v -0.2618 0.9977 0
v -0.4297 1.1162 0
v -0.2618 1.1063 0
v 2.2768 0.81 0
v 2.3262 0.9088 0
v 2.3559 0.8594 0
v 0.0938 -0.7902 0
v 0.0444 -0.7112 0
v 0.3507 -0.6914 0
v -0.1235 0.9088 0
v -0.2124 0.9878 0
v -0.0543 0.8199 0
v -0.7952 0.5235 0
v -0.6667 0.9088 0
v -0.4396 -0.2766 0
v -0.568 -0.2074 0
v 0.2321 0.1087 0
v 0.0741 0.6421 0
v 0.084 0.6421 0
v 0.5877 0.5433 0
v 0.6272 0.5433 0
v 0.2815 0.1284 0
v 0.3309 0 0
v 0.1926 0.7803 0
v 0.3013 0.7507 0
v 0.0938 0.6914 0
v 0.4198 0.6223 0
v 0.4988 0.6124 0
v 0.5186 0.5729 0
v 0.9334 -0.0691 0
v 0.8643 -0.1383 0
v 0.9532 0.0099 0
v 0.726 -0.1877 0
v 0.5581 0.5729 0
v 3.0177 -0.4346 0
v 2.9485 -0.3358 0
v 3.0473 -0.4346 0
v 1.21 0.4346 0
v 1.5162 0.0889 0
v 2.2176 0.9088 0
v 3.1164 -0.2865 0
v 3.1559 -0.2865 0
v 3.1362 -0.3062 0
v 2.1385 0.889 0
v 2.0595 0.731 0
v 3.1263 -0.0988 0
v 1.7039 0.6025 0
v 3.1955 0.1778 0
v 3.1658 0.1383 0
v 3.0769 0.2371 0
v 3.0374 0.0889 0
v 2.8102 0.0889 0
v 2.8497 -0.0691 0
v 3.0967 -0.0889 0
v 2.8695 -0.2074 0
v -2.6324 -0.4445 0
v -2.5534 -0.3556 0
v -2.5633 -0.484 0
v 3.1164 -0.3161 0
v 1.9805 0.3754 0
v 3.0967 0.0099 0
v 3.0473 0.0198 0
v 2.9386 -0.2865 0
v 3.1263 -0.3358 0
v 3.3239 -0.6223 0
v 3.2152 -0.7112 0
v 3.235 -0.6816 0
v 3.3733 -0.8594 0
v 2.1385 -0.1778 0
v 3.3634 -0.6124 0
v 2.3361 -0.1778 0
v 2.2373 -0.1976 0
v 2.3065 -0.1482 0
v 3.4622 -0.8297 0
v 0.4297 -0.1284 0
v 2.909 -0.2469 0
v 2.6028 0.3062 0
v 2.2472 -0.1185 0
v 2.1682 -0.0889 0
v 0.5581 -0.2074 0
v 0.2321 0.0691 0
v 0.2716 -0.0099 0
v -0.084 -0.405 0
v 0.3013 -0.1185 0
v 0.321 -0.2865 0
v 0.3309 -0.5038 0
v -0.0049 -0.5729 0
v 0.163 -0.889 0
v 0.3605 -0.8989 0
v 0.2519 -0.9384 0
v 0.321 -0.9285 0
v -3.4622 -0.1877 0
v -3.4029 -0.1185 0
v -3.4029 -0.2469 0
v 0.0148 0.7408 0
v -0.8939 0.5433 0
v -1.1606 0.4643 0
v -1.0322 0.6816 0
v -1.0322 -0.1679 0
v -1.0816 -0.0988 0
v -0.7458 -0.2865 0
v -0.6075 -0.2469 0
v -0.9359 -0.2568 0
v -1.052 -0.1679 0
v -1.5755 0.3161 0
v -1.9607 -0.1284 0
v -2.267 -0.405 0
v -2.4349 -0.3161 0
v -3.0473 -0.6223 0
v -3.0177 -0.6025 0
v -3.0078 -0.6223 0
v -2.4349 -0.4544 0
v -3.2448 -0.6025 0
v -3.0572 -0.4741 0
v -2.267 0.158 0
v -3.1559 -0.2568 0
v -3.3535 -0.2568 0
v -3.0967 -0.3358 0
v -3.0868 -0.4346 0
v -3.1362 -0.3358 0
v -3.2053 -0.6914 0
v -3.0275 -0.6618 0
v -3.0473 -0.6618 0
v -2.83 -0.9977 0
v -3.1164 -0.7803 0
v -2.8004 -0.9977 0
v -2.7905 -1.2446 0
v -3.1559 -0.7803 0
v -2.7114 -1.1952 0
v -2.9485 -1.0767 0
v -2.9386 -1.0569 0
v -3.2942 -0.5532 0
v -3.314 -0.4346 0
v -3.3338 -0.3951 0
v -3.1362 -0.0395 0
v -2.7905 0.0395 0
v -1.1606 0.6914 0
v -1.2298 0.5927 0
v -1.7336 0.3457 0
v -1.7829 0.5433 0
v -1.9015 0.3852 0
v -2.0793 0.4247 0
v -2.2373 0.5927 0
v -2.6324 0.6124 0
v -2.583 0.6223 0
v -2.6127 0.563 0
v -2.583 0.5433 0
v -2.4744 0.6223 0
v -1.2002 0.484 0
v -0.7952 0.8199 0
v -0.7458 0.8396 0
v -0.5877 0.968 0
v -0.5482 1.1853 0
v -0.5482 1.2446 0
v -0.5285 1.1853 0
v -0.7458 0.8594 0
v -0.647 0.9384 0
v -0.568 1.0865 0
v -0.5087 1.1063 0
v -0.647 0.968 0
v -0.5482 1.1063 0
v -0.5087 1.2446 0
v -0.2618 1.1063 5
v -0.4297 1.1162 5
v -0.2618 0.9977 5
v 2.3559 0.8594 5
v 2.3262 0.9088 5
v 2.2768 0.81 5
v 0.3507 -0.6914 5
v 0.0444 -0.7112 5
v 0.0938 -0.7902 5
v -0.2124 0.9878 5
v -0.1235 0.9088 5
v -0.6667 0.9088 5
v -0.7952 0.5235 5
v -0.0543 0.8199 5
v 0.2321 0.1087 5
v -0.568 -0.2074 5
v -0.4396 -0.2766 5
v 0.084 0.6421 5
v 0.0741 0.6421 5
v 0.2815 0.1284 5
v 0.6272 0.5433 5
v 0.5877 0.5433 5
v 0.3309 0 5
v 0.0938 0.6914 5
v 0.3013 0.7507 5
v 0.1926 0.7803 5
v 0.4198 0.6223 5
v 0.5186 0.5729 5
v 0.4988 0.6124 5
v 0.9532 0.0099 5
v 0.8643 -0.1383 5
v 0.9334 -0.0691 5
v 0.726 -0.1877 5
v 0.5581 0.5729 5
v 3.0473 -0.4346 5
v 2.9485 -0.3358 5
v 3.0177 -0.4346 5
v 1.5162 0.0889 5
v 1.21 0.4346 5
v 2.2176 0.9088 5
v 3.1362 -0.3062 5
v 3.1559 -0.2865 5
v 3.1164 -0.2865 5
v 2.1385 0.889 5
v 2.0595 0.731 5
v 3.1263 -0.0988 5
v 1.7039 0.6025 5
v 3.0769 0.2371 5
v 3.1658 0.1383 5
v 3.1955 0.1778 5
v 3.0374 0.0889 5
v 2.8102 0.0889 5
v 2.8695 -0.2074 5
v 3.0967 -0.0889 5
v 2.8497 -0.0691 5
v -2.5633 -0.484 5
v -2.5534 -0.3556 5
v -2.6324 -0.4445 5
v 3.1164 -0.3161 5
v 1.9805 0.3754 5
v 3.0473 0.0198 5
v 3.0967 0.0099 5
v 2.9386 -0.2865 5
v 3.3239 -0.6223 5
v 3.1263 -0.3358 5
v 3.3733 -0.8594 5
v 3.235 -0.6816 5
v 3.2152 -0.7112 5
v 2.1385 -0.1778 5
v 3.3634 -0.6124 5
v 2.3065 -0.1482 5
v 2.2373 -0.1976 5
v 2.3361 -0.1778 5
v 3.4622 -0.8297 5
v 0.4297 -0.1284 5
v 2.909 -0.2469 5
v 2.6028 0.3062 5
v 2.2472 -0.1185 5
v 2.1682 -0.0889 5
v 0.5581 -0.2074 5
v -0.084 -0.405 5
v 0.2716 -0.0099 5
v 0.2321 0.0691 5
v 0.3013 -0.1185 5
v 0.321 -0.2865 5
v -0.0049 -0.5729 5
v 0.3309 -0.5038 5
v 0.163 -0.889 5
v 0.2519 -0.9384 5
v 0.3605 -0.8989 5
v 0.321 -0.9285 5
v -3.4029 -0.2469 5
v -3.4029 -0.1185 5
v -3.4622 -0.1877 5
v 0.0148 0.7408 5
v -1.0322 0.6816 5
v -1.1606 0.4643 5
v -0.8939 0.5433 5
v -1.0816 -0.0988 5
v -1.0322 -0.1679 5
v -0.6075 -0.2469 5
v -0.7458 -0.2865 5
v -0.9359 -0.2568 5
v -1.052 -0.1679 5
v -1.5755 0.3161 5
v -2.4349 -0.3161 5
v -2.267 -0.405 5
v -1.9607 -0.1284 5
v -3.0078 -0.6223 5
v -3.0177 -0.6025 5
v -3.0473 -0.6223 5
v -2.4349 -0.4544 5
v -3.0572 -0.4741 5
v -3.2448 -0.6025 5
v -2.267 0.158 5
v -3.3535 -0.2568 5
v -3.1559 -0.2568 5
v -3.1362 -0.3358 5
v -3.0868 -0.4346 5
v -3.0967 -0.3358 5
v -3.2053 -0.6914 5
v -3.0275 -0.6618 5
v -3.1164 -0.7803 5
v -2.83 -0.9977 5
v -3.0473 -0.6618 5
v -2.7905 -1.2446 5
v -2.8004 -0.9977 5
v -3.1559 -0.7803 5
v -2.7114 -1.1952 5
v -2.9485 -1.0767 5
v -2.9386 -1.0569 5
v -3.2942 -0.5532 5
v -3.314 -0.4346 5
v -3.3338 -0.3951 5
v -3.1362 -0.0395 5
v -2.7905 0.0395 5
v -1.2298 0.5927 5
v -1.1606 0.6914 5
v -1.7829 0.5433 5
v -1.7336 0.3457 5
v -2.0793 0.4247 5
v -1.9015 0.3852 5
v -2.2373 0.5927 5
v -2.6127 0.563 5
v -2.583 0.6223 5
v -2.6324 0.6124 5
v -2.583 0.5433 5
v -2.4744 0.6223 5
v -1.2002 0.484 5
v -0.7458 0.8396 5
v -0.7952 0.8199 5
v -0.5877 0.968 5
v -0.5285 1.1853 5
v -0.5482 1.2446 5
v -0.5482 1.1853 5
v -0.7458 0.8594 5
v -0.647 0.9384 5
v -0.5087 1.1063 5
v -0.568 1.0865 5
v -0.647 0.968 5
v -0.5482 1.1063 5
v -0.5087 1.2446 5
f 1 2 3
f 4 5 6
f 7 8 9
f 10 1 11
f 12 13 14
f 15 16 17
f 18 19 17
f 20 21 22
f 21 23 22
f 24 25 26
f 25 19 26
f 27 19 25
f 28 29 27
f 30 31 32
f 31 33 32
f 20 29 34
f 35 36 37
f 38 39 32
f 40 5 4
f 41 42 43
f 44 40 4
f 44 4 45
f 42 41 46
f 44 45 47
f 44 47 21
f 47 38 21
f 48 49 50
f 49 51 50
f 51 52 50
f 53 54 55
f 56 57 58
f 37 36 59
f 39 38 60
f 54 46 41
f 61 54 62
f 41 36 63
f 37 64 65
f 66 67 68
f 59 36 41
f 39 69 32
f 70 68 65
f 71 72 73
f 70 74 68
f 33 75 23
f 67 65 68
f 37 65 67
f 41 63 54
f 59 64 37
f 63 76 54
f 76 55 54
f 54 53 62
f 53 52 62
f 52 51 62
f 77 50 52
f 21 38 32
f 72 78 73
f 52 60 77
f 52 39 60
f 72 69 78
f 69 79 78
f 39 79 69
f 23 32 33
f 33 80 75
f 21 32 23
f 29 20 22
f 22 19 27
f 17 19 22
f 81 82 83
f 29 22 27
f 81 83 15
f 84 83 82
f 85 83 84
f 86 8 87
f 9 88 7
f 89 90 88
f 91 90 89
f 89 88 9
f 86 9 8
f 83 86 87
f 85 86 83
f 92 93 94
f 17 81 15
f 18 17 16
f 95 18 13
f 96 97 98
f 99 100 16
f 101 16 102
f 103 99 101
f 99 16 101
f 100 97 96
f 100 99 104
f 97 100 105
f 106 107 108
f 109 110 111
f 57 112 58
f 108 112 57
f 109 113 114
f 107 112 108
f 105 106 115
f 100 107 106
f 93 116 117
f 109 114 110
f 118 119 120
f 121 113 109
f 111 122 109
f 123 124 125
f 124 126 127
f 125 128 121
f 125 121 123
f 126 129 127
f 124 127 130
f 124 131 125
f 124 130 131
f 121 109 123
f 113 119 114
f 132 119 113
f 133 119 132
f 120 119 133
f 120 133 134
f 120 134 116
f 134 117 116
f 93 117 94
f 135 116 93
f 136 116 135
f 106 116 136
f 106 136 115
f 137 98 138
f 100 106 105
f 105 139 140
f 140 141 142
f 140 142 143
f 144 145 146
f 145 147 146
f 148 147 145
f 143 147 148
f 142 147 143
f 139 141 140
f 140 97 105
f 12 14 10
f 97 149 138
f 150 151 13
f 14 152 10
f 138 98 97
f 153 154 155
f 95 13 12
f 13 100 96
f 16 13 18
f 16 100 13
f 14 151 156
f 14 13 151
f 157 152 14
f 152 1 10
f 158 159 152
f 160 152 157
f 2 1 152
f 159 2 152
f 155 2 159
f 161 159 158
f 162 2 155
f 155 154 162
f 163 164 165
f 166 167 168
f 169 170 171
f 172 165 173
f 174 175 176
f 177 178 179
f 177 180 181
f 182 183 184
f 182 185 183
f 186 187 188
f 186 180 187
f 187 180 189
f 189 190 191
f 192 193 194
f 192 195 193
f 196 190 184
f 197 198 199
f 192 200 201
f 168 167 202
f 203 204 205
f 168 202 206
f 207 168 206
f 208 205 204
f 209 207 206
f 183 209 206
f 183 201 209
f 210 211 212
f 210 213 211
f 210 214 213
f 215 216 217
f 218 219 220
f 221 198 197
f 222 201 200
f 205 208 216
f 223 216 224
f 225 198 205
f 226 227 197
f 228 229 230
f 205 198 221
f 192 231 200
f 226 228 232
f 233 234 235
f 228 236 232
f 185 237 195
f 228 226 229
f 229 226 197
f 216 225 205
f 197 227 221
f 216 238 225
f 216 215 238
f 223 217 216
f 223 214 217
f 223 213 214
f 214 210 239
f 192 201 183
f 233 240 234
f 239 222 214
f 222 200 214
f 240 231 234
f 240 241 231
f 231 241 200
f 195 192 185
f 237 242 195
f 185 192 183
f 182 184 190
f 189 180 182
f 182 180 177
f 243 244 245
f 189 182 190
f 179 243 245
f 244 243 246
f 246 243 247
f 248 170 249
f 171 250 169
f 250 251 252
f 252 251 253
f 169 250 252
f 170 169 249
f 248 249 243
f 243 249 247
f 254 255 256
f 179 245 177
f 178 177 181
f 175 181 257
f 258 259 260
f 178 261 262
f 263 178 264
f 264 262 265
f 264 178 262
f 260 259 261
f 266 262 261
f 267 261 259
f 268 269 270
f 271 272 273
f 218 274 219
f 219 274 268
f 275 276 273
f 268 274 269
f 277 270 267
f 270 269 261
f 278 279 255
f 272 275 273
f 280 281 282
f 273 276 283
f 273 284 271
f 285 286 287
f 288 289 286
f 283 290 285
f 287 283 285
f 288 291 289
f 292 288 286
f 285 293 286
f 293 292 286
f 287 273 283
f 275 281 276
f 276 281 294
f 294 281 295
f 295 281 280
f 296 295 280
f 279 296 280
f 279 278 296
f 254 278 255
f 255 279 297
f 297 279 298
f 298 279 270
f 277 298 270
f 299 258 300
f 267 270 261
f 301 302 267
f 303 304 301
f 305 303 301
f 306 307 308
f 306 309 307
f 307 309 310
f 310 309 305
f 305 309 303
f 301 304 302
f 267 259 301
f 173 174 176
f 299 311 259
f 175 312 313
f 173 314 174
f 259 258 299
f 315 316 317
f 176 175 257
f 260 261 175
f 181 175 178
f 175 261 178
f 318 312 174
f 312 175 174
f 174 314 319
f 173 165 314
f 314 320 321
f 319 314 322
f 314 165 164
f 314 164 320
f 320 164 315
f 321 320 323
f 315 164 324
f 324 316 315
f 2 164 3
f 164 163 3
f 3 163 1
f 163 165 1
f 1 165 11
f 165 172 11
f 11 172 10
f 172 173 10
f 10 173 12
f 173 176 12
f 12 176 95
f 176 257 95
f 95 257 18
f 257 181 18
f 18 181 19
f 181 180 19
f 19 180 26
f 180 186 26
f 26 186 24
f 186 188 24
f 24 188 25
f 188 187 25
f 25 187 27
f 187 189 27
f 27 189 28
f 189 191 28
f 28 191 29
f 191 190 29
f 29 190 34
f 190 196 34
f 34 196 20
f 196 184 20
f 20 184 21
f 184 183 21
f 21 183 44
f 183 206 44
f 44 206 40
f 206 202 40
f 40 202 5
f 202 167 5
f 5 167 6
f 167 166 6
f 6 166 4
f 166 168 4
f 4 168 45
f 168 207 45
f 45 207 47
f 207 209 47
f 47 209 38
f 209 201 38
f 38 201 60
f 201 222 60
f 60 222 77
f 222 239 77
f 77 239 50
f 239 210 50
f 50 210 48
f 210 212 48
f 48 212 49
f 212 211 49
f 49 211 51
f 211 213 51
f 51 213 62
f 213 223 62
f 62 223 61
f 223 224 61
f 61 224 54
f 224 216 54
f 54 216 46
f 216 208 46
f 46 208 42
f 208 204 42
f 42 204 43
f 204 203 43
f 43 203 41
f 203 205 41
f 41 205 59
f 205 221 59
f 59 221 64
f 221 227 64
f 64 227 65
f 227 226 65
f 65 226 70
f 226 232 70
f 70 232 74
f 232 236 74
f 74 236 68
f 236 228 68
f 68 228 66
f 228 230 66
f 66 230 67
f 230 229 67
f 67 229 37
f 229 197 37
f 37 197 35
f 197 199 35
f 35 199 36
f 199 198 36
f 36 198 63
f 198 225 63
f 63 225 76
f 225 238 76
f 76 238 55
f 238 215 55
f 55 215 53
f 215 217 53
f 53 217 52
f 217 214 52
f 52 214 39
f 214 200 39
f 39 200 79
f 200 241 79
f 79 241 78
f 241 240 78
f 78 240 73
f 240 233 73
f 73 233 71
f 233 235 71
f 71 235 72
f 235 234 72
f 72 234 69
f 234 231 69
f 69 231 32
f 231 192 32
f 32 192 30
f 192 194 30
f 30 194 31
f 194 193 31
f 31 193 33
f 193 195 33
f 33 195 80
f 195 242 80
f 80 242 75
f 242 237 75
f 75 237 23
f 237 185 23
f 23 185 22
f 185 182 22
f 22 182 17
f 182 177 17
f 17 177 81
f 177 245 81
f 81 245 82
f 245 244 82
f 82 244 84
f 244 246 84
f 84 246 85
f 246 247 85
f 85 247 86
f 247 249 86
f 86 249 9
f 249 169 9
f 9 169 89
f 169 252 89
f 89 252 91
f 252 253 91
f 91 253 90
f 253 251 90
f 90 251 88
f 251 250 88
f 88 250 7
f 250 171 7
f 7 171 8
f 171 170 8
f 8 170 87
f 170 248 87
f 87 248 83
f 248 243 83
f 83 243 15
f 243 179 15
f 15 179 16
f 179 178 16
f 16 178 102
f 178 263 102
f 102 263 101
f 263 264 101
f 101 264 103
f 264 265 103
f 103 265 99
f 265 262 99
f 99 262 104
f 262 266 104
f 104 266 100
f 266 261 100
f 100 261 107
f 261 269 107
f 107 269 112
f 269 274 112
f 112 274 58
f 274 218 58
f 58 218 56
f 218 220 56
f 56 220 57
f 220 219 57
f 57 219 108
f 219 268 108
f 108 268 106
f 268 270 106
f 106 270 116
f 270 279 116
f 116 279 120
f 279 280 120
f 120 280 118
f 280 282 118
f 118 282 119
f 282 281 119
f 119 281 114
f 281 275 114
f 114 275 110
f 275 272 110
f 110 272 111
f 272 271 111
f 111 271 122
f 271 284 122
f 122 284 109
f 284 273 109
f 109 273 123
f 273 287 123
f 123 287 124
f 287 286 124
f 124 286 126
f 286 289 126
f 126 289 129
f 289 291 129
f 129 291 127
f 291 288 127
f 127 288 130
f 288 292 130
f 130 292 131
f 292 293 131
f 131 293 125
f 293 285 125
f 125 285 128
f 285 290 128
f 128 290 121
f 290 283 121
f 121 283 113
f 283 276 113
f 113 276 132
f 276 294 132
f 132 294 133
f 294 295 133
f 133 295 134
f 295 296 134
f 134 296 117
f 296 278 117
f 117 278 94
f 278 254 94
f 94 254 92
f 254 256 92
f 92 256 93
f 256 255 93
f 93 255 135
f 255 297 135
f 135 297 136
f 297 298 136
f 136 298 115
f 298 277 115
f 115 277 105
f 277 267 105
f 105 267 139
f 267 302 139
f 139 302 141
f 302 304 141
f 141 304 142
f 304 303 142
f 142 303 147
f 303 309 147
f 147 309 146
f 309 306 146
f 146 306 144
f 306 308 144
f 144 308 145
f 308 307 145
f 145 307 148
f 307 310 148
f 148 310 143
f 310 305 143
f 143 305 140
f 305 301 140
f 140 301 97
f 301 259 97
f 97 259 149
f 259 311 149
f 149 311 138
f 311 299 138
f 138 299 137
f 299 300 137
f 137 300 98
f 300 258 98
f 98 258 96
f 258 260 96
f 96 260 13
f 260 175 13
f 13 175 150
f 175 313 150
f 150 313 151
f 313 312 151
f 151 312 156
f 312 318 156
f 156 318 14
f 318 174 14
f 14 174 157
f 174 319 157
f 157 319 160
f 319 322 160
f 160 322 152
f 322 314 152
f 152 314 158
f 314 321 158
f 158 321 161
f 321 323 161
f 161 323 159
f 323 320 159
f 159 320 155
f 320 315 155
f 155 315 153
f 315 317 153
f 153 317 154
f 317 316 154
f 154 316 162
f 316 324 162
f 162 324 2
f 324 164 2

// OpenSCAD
// Module names are of the form poly_<inkscape-path-id>().  As a result,
// you can associate a polygon in this OpenSCAD program with the corresponding
// SVG element in the Inkscape document by looking for the XML element with
// the attribute id="inkscape-path-id".

// fudge value is used to ensure that subtracted solids are a tad taller
// in the z dimension than the polygon being subtracted from.  This helps
// keep the resulting .stl file manifold.
fudge = 0.1;

module poly_path4180(h)
{
  scale([25.4/90, -25.4/90, 1]) union()
  {
    linear_extrude(height=h)
      polygon([[12.267500,2.940000],[11.952500,3.045000],[11.392500,2.520000],[11.462500,2.415000],[10.797500,1.540000],[10.692500,1.540000],[10.447500,1.190000],[10.412500,1.015000],[10.307500,0.875000],[10.167500,0.735000],[10.097500,0.245000],[9.957500,-0.315000],[5.372500,-0.315000],[7.682500,0.315000],[7.962500,0.420000],[8.172500,0.525000],[8.277500,0.630000],[7.927500,0.700000],[7.577500,0.630000],[3.377500,-0.035000],[3.307500,0.245000],[3.062500,0.490000],[2.572500,0.665000],[1.977500,0.735000],[1.522500,0.455000],[1.172500,-0.000000],[0.997500,-0.455000],[0.822500,-0.385000],[0.822500,-0.245000],[0.962500,0.035000],[1.067500,0.420000],[1.137500,1.015000],[1.172500,1.785000],[1.242500,2.450000],[1.277500,3.185000],[1.137500,3.290000],[0.892500,3.325000],[0.577500,3.150000],[0.332500,2.800000],[0.157500,2.520000],[-0.017500,2.030000],[-0.297500,1.435000],[-1.172500,1.120000],[-1.557500,0.980000],[-2.012500,0.735000],[-2.152500,0.875000],[-2.642500,1.015000],[-3.316250,0.910000],[-3.657500,0.595000],[-3.727500,0.595000],[-3.832500,0.350000],[-8.032500,1.435000],[-8.627500,1.610000],[-9.082500,1.715000],[-9.327500,1.575000],[-9.047500,1.260000],[-8.627500,1.120000],[-6.947500,0.455000],[-11.182500,0.910000],[-11.112500,1.190000],[-10.972500,1.190000],[-10.937500,1.540000],[-10.832500,1.680000],[-10.692500,2.135000],[-10.657500,2.205000],[-10.727500,2.345000],[-10.797500,2.205000],[-10.797500,2.345000],[-10.027500,3.535000],[-9.922500,3.535000],[-9.607500,4.235000],[-9.887500,4.410000],[-10.447500,3.815000],[-10.412500,3.745000],[-11.042500,2.765000],[-11.182500,2.765000],[-11.357500,2.450000],[-11.497500,2.135000],[-11.672500,1.960000],[-11.742500,1.540000],[-11.812500,1.400000],[-11.882500,0.910000],[-12.057500,0.875000],[-12.267500,0.665000],[-12.057500,0.420000],[-11.112500,0.140000],[-9.887500,-0.140000],[-8.032500,-0.560000],[-5.582500,-1.120000],[-6.142500,-1.225000],[-6.737500,-1.365000],[-7.367500,-1.505000],[-9.152500,-1.925000],[-9.257500,-1.995000],[-9.327500,-2.170000],[-9.152500,-2.205000],[-8.767500,-2.205000],[-7.927500,-2.100000],[-6.317500,-1.925000],[-4.112500,-1.645000],[-4.252500,-1.715000],[-4.357500,-2.100000],[-4.112500,-2.450000],[-3.657500,-2.415000],[-3.167500,-1.925000],[-2.817500,-1.855000],[-2.817500,-2.905000],[-2.642500,-2.975000],[-2.642500,-3.045000],[-2.362500,-3.220000],[-2.292500,-3.325000],[-2.292500,-3.430000],[-2.082500,-3.430000],[-2.012500,-3.850000],[-1.942500,-3.920000],[-1.802500,-3.920000],[-1.872500,-4.200000],[-1.942500,-4.200000],[-1.942500,-4.410000],[-1.802500,-4.410000],[-1.522500,-3.955000],[-0.927500,-3.920000],[-0.927500,-3.535000],[-0.752500,-3.500000],[-0.437500,-3.220000],[-0.192500,-2.905000],[0.052500,-2.625000],[0.262500,-2.275000],[0.297500,-2.275000],[0.332500,-2.450000],[0.682500,-2.765000],[1.067500,-2.660000],[1.487500,-2.205000],[1.767500,-2.170000],[1.837500,-2.030000],[1.977500,-2.030000],[2.082500,-1.925000],[2.222500,-1.925000],[7.577500,-3.150000],[7.857500,-3.220000],[8.242500,-3.220000],[8.347500,-3.045000],[8.067500,-2.870000],[7.297500,-2.590000],[6.037500,-2.135000],[4.287500,-1.540000],[7.017500,-1.330000],[9.222500,-1.085000],[10.902500,-0.840000],[11.322500,-0.630000],[11.217500,-0.490000],[10.762500,-0.315000],[10.797500,-0.070000],[10.972500,-0.035000],[10.972500,0.315000],[11.077500,0.350000],[11.182500,1.015000],[11.147500,1.050000],[11.112500,1.085000],[11.042500,1.015000],[11.042500,1.120000],[11.077500,1.190000],[11.777500,2.205000],[11.917500,2.170000],[12.267500,2.940000]]);
  }
}

poly_path4180(5);
